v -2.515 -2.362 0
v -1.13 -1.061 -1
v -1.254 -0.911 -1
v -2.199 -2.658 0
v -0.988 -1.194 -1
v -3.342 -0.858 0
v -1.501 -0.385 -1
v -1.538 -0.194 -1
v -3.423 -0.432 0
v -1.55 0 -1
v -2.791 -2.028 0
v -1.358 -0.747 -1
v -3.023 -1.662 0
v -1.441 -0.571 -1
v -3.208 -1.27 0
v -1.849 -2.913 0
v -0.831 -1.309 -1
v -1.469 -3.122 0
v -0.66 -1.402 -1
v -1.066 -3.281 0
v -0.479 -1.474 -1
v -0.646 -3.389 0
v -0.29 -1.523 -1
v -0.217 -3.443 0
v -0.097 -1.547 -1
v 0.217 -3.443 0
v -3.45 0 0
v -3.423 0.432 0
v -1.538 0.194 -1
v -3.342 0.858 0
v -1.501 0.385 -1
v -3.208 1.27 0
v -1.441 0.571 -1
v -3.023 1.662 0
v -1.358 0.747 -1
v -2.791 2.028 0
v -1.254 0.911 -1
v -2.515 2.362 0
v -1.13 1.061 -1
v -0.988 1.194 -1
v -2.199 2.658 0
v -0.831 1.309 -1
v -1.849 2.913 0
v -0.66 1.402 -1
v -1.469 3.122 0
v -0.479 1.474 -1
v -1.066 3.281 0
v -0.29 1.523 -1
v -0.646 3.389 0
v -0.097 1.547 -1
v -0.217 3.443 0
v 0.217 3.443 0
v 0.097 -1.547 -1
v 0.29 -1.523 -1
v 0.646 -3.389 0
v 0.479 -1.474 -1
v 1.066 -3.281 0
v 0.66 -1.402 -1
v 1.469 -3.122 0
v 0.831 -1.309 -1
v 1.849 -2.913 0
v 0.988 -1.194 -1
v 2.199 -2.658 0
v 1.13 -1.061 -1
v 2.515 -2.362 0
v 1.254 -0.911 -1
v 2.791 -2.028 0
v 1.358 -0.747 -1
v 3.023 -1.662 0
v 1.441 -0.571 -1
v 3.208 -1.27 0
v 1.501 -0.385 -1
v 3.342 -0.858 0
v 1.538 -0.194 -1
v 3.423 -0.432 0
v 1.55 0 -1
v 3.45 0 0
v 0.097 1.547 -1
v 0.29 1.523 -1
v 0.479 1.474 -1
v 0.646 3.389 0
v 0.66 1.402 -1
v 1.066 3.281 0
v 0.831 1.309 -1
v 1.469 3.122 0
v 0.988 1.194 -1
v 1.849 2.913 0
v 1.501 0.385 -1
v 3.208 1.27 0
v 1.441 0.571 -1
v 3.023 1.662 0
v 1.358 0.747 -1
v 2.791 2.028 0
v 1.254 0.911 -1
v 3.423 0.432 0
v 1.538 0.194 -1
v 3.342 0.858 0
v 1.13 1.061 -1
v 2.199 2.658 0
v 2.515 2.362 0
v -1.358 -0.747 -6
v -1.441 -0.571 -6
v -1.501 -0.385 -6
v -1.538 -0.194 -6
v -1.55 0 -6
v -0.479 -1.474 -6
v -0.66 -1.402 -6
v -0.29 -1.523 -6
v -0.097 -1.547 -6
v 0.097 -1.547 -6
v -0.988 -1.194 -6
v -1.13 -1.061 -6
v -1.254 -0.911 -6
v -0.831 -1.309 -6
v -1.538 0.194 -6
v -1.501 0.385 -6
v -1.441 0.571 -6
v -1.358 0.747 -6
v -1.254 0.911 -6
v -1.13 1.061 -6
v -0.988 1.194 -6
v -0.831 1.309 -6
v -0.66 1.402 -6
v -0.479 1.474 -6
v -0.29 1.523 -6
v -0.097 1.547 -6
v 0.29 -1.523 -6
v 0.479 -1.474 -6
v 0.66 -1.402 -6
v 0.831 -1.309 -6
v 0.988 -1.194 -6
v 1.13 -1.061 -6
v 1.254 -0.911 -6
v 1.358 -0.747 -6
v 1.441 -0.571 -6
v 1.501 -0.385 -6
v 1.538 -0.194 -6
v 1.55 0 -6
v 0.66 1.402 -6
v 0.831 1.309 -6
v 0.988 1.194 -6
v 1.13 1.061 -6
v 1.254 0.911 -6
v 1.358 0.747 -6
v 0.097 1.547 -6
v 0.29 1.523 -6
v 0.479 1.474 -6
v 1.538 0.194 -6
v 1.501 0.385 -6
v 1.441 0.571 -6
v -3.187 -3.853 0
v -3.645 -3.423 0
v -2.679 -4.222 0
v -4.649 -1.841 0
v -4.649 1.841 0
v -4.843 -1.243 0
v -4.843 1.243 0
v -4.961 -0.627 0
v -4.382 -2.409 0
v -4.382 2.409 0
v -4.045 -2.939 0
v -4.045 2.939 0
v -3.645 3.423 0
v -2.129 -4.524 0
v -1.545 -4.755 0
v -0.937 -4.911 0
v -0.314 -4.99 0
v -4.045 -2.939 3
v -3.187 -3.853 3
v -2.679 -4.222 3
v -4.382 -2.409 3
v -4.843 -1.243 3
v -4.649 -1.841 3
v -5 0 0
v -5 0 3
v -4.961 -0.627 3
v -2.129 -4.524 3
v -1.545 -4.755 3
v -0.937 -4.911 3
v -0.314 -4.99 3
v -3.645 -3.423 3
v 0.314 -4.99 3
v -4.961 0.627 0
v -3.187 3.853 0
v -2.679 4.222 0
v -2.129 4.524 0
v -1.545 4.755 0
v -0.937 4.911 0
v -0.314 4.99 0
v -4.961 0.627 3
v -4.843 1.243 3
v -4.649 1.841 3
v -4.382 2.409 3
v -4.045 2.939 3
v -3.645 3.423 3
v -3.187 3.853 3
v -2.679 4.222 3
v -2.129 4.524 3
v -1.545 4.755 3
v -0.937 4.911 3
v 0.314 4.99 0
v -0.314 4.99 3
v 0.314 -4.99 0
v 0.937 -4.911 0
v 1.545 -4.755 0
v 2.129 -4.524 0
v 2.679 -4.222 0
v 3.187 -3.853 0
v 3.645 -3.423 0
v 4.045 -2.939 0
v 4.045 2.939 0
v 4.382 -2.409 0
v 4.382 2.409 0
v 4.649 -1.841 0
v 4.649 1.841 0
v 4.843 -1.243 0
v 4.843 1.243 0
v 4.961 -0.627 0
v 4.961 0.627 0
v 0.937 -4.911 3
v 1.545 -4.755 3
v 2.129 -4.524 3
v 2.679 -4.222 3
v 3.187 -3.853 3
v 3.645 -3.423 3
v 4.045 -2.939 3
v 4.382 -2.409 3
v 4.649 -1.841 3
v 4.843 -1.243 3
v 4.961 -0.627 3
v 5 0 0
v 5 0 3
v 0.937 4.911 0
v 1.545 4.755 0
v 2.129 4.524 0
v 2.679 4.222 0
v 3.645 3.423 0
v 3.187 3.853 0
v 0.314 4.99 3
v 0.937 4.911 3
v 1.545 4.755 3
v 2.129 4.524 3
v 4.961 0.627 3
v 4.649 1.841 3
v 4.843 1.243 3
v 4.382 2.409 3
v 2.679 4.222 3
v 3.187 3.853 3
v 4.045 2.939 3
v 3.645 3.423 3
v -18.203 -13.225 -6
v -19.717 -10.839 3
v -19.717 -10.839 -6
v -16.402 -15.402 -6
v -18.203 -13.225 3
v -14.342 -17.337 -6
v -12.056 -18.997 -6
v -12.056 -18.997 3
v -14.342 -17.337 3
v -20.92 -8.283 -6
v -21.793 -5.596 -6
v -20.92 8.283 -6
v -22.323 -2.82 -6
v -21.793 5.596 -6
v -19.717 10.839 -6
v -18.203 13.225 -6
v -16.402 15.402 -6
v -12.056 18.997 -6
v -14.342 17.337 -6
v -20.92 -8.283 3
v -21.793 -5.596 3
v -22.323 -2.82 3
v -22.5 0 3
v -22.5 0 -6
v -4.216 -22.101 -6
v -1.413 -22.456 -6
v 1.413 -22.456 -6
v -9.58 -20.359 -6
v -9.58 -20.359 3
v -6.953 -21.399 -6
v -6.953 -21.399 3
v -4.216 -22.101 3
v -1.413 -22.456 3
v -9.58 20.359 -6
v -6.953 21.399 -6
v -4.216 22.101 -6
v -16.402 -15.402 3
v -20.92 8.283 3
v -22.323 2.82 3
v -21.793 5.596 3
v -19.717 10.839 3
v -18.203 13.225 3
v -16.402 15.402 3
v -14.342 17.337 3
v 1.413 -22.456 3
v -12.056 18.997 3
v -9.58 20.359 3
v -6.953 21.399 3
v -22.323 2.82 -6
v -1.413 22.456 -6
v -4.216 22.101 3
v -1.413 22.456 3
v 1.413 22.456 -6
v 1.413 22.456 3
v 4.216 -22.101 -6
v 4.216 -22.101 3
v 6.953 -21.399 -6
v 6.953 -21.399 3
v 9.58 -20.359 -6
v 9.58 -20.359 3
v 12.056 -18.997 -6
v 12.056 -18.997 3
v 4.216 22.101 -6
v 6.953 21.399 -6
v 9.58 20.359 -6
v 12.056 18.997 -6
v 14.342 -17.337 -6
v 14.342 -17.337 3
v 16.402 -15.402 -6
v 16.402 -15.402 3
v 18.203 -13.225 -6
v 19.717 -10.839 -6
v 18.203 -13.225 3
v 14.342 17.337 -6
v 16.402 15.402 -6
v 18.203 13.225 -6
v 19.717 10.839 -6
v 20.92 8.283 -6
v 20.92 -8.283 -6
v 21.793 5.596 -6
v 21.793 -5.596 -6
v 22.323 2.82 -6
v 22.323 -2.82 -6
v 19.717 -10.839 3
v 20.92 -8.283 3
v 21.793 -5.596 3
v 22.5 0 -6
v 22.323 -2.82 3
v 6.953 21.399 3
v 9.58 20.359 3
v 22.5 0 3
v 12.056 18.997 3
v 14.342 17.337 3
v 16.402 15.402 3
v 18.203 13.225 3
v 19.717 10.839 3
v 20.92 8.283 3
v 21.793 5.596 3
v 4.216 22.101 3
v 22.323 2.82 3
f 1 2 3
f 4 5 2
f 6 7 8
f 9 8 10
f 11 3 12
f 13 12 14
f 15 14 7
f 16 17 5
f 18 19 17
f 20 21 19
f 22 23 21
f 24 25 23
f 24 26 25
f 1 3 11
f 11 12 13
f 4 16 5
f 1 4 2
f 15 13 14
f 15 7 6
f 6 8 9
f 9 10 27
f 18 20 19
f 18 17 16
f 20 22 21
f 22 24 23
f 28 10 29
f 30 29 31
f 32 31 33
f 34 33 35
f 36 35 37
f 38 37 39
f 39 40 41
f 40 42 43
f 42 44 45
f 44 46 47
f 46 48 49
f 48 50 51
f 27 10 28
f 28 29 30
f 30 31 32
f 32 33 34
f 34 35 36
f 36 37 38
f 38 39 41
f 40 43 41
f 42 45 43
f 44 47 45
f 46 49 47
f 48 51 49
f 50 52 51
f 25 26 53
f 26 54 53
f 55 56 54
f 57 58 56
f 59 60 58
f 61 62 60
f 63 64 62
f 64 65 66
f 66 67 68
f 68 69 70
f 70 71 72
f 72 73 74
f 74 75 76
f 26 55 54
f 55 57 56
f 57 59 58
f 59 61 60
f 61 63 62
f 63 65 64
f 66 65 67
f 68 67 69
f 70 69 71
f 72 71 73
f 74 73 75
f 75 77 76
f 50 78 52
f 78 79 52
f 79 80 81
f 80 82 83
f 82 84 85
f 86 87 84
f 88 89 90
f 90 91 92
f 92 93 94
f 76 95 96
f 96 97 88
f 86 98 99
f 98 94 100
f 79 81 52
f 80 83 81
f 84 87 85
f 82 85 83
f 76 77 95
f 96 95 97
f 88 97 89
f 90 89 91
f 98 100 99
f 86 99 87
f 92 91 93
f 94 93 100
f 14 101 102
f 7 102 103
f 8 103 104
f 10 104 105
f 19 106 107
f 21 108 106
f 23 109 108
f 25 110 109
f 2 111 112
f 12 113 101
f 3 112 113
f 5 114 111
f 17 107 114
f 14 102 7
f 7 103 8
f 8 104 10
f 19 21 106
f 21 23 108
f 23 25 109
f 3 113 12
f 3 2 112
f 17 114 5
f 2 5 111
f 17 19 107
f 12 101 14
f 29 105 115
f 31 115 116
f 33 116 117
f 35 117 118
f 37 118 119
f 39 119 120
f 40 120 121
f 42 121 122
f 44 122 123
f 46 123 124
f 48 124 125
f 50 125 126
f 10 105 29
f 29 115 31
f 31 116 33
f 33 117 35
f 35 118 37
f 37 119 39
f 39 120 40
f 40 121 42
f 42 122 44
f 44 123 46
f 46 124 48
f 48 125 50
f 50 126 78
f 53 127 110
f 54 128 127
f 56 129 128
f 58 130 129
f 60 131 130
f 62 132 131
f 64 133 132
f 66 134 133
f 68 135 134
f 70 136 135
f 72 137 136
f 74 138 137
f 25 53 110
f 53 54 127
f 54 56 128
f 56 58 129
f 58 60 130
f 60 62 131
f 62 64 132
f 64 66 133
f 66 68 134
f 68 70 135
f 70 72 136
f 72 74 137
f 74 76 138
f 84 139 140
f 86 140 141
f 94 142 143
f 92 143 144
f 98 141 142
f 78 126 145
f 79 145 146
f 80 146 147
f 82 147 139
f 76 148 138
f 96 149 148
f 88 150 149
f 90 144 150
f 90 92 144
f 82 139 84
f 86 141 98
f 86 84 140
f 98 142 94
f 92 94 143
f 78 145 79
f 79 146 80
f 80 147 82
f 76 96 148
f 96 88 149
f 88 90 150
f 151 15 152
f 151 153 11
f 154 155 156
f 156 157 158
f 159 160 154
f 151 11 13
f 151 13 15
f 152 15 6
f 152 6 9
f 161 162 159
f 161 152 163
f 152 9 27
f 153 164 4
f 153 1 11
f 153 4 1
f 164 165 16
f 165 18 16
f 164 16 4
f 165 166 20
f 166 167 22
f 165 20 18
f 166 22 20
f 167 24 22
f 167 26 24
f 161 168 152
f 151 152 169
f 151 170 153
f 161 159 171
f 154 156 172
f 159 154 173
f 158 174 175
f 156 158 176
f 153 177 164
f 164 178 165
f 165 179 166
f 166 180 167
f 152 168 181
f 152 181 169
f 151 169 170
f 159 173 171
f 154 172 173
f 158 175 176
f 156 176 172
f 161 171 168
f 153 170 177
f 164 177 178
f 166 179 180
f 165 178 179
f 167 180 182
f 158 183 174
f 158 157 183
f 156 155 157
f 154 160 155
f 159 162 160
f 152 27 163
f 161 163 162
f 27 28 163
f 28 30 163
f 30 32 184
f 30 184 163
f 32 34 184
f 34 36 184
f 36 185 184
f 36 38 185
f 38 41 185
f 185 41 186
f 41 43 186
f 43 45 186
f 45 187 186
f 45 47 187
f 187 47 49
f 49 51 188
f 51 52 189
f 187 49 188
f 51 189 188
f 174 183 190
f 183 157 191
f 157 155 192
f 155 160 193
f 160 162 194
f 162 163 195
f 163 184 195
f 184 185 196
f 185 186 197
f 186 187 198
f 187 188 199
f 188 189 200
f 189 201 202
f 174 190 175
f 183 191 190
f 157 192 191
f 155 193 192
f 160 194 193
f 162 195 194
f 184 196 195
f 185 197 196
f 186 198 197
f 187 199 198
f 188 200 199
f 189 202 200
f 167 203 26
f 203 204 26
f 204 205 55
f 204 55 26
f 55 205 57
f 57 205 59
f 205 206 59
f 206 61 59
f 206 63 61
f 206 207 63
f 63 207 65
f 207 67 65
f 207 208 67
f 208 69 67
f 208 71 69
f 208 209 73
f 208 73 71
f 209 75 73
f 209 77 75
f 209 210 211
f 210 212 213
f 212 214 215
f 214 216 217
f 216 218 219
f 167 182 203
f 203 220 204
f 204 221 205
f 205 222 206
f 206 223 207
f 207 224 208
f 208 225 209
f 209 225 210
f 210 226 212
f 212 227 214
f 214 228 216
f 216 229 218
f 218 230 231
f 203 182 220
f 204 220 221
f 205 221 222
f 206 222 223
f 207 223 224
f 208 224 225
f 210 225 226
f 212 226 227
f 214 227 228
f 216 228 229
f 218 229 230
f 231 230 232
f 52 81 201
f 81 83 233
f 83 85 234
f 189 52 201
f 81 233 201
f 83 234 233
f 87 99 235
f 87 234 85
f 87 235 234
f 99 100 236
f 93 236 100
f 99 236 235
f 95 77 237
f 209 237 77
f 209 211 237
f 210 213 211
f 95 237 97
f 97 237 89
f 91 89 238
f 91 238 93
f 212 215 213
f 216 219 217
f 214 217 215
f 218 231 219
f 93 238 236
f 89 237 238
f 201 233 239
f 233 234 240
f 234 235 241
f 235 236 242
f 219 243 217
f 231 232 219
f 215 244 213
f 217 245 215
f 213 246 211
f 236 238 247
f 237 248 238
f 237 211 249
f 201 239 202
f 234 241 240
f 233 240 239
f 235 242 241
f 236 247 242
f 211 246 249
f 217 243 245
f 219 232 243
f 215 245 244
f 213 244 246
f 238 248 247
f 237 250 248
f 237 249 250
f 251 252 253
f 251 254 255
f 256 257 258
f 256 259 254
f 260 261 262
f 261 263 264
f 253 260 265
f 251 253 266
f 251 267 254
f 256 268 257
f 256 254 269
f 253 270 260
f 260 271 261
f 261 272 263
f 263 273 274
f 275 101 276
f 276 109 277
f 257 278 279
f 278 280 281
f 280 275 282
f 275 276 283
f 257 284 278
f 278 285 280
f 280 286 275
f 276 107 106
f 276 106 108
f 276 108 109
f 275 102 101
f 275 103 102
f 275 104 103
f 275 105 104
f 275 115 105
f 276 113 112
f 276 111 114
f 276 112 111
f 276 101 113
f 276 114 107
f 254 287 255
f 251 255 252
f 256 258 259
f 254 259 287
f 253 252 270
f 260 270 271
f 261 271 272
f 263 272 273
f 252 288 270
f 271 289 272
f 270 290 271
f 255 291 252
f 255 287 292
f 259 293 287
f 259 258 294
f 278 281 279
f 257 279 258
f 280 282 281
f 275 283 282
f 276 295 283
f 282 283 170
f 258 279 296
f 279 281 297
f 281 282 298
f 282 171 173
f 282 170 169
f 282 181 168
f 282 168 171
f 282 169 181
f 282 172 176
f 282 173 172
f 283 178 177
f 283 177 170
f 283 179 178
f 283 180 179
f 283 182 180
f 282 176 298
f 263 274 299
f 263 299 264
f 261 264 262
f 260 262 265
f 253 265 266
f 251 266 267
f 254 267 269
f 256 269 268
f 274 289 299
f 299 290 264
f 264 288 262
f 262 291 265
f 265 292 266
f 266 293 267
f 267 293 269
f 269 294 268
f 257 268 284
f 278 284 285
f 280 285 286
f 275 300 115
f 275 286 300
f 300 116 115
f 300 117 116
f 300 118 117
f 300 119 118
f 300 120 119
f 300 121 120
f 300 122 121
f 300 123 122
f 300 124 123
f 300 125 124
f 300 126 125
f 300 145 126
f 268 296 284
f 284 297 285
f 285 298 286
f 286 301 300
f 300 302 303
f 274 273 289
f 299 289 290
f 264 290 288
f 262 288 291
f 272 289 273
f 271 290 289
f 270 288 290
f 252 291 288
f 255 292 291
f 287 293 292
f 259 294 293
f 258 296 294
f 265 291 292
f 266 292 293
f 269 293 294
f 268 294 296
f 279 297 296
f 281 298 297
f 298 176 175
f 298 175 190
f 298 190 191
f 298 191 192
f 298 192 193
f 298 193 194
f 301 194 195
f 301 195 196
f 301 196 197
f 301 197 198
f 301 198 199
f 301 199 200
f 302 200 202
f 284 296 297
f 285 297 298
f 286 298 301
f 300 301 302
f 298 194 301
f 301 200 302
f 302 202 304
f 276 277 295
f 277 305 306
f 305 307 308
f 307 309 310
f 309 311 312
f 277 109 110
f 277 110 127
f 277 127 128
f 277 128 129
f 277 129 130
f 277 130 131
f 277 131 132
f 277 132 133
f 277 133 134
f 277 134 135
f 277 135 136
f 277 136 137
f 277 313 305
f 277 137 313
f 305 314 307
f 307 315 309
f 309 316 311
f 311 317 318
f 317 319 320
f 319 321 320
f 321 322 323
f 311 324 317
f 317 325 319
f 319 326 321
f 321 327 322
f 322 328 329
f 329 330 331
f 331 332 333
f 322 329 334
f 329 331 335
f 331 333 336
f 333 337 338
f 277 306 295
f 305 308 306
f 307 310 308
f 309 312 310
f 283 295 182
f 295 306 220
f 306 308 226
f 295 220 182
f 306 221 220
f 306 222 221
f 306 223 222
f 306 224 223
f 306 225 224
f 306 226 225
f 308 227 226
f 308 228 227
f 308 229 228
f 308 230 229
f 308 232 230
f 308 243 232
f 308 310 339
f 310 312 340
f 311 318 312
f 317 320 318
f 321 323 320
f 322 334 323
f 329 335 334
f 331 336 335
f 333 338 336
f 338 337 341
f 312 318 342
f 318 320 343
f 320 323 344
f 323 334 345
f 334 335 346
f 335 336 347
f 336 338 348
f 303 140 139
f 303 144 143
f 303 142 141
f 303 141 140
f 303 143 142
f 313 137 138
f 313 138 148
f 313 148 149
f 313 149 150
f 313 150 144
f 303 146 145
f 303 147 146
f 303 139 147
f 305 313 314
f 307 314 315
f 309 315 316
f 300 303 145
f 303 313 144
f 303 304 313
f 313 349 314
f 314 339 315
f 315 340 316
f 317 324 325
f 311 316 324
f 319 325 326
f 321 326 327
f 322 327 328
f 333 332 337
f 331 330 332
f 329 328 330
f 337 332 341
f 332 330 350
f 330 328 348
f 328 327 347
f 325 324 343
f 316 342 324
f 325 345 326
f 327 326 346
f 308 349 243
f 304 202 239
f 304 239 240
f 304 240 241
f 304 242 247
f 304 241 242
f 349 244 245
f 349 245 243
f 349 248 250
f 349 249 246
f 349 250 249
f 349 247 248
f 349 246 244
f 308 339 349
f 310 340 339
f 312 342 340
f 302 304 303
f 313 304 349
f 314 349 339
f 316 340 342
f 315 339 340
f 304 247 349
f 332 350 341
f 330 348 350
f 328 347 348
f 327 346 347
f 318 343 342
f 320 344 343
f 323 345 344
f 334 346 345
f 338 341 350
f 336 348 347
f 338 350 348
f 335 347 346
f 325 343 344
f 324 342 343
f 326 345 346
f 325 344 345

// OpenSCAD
$fn = 50;

difference() {
	union() {
		translate(v = [0, 0, -6.0]) {
			cylinder(h = 9, r = 22.5);
		}
	}
	union() {
		translate(v = [0, 0, 0]) {
			rotate(a = [0, 0, 0]) {
				difference() {
					union() {
						translate(v = [0, 0, -9.0]) {
							cylinder(h = 9, r = 1.25);
						}
						translate(v = [0, 0, -1.0]) {
							cylinder(h = 1.0, r1 = 1.55, r2 = 3.45);
						}
						translate(v = [0, 0, -9.0]) {
							cylinder(h = 9, r = 1.55);
						}
						translate(v = [0, 0, -9.0]) {
							cylinder(h = 9, r = 1.25);
						}
					}
					union();
				}
			}
		}
		#cylinder(h = 3, r = 5.0);
	}
}
